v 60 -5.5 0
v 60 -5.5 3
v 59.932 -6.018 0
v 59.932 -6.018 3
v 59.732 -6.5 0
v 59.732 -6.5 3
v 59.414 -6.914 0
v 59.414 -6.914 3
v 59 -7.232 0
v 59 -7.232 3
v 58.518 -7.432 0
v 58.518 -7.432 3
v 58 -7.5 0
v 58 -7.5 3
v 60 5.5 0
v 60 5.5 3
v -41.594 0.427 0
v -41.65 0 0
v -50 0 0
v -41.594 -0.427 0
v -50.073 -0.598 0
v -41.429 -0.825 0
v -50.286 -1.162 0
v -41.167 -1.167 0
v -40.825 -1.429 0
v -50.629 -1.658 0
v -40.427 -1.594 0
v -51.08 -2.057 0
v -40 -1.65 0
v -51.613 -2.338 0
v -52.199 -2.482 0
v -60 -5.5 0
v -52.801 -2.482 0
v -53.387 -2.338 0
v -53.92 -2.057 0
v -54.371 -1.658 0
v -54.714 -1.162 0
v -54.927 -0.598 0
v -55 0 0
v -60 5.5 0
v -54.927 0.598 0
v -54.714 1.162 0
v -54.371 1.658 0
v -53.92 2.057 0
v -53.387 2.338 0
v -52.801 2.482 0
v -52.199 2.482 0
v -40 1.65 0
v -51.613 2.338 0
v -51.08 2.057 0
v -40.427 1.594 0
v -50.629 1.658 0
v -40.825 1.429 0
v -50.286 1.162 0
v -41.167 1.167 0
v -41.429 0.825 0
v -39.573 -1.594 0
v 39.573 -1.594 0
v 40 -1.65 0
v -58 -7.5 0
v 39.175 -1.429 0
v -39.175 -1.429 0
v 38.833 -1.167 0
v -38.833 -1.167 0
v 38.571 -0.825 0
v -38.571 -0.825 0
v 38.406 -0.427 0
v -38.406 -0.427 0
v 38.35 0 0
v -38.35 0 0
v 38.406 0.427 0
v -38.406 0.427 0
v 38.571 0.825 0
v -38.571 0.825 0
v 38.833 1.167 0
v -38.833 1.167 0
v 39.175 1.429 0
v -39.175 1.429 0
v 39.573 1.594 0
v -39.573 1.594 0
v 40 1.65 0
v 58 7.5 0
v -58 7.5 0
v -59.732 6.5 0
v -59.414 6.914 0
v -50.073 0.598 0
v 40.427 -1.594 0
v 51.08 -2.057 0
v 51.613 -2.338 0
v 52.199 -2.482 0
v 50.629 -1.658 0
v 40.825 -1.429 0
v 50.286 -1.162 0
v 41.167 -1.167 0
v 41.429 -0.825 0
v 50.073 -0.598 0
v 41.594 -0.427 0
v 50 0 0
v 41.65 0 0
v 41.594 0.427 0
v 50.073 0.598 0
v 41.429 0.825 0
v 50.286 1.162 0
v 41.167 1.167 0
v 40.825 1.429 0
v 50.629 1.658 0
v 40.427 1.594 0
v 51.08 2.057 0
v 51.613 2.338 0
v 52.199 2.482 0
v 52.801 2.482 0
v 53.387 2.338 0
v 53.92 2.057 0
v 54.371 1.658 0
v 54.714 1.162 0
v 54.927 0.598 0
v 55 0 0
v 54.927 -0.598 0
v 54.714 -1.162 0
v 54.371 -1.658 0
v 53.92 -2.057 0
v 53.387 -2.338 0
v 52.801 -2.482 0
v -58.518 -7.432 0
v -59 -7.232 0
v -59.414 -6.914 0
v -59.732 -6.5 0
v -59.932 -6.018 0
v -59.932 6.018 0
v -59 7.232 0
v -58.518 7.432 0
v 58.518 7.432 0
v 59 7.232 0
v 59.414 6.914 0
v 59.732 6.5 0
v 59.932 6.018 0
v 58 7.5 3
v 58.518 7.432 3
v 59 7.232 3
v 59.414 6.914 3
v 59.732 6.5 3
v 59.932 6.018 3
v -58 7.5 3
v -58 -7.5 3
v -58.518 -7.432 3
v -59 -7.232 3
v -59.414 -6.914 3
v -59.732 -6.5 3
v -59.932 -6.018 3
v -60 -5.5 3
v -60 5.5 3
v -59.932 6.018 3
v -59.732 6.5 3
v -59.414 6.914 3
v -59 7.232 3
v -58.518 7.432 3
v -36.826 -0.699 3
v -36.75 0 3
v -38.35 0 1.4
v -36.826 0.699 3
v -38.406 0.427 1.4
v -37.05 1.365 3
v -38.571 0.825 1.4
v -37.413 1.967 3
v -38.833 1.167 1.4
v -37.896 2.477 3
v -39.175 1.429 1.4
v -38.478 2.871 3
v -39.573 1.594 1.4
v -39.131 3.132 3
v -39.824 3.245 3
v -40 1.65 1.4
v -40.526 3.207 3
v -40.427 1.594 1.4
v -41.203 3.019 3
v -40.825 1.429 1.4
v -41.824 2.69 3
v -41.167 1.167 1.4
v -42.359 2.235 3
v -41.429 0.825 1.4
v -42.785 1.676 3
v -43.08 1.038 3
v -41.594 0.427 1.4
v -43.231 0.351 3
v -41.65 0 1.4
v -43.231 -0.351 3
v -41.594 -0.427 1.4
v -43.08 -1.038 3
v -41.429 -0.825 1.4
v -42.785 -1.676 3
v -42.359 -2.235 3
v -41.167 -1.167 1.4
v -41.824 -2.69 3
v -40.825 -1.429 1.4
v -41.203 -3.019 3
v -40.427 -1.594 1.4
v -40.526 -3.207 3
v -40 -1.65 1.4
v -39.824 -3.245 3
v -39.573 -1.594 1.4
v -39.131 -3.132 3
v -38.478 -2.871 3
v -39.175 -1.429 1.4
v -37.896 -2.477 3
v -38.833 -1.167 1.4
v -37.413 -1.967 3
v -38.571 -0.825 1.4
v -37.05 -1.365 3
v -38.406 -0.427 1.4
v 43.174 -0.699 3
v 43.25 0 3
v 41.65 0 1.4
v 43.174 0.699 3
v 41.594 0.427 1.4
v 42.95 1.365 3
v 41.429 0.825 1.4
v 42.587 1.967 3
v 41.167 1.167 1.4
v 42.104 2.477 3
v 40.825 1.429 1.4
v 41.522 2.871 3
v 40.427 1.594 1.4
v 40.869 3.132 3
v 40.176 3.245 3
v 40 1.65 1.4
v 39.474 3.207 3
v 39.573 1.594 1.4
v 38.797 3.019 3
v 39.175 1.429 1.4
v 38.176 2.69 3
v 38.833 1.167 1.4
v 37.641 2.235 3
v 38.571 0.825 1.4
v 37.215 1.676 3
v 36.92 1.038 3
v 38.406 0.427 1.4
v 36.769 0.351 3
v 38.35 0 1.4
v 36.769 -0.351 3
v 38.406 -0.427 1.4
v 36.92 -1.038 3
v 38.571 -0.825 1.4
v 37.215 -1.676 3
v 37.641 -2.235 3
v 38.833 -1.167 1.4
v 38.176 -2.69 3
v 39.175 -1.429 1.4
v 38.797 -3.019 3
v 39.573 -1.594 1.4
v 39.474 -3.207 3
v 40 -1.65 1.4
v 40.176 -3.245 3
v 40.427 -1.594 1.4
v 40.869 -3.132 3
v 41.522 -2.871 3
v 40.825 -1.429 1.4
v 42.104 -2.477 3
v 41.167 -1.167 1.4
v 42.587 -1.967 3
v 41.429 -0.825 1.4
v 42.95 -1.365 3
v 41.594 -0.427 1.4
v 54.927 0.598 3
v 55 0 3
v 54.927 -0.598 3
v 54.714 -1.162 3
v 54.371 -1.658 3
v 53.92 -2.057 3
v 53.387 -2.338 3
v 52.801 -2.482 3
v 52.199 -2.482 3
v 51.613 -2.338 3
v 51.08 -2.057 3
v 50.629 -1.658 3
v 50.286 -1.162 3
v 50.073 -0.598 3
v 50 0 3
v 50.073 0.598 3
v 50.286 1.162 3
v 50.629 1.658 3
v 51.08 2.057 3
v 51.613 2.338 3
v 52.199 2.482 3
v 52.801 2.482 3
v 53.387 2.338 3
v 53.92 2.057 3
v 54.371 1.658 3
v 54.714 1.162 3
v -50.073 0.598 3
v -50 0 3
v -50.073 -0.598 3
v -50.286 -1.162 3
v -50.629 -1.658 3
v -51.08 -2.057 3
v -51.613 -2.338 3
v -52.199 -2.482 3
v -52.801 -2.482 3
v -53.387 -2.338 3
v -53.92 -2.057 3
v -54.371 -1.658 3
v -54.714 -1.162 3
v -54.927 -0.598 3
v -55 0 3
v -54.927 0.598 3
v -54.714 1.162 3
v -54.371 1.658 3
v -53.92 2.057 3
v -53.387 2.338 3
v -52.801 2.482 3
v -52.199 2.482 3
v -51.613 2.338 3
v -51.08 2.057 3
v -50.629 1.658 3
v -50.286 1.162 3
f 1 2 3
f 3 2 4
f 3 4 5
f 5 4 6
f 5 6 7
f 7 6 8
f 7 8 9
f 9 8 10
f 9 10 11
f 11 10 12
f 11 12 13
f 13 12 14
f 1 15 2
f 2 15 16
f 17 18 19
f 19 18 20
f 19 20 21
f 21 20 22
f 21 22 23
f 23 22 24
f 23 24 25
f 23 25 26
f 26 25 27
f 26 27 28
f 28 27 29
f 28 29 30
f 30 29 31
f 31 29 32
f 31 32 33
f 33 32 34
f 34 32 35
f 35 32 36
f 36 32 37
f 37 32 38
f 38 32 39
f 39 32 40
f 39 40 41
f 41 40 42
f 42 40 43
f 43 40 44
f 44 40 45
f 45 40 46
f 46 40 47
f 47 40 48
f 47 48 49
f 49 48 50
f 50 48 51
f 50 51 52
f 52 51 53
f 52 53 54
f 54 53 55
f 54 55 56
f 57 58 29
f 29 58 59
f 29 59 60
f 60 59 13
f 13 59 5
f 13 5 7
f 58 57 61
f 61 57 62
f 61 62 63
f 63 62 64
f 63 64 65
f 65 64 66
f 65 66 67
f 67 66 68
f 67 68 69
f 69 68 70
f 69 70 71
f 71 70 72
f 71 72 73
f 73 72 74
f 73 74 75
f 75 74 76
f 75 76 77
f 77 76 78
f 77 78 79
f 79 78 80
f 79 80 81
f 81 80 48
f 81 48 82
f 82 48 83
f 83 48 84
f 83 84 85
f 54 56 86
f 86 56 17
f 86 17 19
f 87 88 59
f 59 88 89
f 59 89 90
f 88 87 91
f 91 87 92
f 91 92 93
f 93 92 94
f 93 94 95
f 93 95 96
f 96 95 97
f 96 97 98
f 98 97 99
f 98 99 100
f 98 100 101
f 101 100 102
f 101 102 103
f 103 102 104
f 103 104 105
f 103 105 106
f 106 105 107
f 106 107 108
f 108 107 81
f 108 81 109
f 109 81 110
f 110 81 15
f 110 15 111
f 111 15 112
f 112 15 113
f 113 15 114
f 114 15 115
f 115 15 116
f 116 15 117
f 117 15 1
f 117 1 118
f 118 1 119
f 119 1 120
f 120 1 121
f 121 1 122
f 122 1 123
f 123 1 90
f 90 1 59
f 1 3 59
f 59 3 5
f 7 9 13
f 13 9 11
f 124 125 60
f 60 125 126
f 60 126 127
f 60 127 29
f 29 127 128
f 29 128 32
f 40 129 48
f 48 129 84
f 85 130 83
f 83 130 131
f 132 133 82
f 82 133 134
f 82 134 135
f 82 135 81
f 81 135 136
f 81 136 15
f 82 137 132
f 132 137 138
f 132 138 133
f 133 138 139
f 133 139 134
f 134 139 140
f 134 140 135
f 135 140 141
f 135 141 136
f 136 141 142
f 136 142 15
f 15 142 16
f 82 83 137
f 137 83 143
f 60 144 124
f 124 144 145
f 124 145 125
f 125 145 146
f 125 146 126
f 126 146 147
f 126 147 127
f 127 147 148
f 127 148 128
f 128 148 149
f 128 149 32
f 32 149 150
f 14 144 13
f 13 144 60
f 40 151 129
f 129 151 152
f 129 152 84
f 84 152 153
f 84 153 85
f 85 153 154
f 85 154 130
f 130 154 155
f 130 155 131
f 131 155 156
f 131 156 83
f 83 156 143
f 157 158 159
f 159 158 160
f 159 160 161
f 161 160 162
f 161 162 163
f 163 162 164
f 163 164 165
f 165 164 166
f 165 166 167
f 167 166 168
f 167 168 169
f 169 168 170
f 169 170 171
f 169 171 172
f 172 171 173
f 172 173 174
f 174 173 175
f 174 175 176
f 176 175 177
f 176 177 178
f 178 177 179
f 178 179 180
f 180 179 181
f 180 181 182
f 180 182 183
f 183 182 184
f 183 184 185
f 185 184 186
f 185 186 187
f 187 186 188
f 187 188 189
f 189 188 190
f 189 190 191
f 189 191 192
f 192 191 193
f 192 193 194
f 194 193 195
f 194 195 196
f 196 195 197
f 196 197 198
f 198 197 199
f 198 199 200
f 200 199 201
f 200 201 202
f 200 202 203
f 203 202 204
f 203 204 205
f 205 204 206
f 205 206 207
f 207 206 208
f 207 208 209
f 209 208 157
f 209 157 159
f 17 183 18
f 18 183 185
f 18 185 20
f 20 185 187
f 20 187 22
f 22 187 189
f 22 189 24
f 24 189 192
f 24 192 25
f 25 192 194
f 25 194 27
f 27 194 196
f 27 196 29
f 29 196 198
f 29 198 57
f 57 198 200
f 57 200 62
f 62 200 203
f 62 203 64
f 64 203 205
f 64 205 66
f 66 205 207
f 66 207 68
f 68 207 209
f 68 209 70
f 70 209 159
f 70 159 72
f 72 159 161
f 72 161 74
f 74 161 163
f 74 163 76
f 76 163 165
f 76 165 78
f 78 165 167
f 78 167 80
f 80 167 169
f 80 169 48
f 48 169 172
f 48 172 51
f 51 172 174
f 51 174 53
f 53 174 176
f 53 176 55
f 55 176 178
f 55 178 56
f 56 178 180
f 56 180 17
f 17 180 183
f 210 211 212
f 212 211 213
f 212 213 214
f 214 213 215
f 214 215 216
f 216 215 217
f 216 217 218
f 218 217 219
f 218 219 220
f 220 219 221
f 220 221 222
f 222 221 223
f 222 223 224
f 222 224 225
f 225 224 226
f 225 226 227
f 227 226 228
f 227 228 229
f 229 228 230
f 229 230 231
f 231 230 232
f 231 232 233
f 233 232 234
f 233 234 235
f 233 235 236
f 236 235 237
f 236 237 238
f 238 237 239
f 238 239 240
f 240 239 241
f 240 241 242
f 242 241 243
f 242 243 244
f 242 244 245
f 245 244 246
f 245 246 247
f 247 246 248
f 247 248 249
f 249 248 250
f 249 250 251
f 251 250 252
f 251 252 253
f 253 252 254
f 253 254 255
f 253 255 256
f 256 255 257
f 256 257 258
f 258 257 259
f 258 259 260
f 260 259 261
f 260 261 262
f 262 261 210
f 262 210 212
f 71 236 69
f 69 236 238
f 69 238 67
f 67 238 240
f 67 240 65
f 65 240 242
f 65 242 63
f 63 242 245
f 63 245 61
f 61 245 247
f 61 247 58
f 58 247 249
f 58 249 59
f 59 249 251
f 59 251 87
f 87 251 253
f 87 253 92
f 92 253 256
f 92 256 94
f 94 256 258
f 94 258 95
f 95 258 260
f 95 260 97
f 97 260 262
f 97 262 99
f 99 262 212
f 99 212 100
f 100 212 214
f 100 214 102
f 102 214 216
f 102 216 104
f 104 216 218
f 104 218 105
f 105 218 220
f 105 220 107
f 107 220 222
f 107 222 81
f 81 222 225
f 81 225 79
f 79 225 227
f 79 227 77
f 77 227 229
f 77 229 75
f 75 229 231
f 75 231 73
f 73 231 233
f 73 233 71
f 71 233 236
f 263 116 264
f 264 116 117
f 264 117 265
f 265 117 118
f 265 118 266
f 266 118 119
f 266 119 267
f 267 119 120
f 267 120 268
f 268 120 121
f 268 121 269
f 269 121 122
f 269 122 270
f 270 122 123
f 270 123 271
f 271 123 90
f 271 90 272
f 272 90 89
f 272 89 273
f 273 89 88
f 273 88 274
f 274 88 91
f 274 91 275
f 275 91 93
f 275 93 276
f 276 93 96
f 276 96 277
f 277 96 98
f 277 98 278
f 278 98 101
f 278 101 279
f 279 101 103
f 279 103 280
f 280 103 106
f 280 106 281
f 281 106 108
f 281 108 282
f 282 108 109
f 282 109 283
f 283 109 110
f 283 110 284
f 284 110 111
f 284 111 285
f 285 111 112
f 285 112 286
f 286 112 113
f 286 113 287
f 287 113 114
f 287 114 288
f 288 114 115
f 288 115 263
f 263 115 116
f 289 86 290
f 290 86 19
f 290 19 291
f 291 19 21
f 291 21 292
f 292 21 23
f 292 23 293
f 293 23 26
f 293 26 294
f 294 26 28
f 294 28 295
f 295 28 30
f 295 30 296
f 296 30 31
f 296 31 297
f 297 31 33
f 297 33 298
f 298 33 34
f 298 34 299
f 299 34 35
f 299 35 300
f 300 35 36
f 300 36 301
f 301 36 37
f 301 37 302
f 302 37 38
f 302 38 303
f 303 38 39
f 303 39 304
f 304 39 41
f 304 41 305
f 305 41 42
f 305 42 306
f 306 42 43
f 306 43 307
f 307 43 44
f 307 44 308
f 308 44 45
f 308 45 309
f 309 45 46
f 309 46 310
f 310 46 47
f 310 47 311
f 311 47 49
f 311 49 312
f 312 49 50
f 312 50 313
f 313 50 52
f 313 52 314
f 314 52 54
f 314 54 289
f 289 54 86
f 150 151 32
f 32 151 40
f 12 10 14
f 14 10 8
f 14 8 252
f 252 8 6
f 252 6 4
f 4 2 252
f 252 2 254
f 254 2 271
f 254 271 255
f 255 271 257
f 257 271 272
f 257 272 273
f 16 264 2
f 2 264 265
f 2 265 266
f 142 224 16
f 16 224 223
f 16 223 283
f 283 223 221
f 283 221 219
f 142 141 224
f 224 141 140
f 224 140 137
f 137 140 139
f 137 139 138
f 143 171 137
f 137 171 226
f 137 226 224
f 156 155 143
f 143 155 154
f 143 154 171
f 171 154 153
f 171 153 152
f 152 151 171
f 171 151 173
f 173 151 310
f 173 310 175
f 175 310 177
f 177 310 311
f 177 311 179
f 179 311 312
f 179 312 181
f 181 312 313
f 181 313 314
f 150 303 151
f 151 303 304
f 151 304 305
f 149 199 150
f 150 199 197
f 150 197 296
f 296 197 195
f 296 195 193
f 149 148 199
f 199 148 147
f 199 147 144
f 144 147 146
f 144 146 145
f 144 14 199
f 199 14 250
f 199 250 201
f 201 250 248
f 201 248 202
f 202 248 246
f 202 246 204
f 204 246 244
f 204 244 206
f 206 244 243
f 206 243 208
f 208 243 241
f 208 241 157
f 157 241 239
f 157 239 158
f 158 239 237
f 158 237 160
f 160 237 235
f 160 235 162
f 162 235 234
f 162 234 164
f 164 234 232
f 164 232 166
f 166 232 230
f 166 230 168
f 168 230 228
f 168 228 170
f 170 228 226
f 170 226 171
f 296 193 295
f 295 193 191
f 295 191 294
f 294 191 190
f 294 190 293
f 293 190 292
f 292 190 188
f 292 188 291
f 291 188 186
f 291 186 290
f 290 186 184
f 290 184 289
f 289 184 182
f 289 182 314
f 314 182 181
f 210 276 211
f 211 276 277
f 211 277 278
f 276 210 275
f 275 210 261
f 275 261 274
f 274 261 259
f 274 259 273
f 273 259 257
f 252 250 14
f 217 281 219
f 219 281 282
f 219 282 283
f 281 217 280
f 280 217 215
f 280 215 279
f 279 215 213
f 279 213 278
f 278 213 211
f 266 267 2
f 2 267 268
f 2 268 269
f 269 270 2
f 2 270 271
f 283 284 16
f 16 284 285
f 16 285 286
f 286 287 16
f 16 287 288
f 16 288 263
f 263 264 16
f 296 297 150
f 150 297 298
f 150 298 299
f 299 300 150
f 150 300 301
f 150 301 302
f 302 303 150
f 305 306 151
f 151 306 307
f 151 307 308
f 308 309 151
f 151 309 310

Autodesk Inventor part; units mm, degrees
ref_plane "YZ Plane" through (0, 0, 0) normal (1, 0, 0) x (0, 1, 0)
ref_plane "XZ Plane" through (0, 0, 0) normal (0, 1, 0) x (-1, 0, 0)
ref_plane "XY Plane" through (0, 0, 0) normal (0, 0, 1) x (1, 0, 0)
sketch "Sketch1" plane through (0, 0, 0) normal (0, 0, 1) x (1, 0, 0)
  line L0 (-60, 7.5) -> (60, 7.5)
  line L1 (60, 7.5) -> (60, -7.5)
  line L2 (60, -7.5) -> (-60, -7.5)
  line L3 (-60, -7.5) -> (-60, 7.5)
  line L4 (-60, 7.5) -> (60, -7.5) construction
  line L5 (60, 7.5) -> (-60, -7.5) construction
  circle A0 centre (-52.5, 0) radius 2.5
  circle A1 centre (52.5, 0) radius 2.5
  point P0 (0, 0)
  point P1 (-60, 0)
  point P2 (60, 0)
  dimension "d0" = 120
  dimension "d1" = 15
  dimension "d2" = 5
  dimension "d3" = 7.5
  dimension "d4" = 7.5
extrude "Extrusion1" add sketch "Sketch1" along normal blind 3
sketch "Sketch2" plane through (0, 0, 3) normal (0, 0, 1) x (1, 0, 0)
  line L0 (-40, 0) -> (40, 0) construction
  point P0 (0, 0)
  point P1 (0, 0)
  dimension "d7" = 80
hole "Hole1" at (-40, 0, 3) at (40, 0, 3) direction (0, 0, -1) diameter 3.3 depth 36.25 countersink diameter 6.5 countersink angle 90
fillet "Fillet1" radius 2 4 edges at (-60, 7.5, 1.5) (-60, -7.5, 1.5) (60, 7.5, 1.5) (60, -7.5, 1.5)
equation "\"d4\" = d3"
properties part number "Power Supply Wall Mount v1"
